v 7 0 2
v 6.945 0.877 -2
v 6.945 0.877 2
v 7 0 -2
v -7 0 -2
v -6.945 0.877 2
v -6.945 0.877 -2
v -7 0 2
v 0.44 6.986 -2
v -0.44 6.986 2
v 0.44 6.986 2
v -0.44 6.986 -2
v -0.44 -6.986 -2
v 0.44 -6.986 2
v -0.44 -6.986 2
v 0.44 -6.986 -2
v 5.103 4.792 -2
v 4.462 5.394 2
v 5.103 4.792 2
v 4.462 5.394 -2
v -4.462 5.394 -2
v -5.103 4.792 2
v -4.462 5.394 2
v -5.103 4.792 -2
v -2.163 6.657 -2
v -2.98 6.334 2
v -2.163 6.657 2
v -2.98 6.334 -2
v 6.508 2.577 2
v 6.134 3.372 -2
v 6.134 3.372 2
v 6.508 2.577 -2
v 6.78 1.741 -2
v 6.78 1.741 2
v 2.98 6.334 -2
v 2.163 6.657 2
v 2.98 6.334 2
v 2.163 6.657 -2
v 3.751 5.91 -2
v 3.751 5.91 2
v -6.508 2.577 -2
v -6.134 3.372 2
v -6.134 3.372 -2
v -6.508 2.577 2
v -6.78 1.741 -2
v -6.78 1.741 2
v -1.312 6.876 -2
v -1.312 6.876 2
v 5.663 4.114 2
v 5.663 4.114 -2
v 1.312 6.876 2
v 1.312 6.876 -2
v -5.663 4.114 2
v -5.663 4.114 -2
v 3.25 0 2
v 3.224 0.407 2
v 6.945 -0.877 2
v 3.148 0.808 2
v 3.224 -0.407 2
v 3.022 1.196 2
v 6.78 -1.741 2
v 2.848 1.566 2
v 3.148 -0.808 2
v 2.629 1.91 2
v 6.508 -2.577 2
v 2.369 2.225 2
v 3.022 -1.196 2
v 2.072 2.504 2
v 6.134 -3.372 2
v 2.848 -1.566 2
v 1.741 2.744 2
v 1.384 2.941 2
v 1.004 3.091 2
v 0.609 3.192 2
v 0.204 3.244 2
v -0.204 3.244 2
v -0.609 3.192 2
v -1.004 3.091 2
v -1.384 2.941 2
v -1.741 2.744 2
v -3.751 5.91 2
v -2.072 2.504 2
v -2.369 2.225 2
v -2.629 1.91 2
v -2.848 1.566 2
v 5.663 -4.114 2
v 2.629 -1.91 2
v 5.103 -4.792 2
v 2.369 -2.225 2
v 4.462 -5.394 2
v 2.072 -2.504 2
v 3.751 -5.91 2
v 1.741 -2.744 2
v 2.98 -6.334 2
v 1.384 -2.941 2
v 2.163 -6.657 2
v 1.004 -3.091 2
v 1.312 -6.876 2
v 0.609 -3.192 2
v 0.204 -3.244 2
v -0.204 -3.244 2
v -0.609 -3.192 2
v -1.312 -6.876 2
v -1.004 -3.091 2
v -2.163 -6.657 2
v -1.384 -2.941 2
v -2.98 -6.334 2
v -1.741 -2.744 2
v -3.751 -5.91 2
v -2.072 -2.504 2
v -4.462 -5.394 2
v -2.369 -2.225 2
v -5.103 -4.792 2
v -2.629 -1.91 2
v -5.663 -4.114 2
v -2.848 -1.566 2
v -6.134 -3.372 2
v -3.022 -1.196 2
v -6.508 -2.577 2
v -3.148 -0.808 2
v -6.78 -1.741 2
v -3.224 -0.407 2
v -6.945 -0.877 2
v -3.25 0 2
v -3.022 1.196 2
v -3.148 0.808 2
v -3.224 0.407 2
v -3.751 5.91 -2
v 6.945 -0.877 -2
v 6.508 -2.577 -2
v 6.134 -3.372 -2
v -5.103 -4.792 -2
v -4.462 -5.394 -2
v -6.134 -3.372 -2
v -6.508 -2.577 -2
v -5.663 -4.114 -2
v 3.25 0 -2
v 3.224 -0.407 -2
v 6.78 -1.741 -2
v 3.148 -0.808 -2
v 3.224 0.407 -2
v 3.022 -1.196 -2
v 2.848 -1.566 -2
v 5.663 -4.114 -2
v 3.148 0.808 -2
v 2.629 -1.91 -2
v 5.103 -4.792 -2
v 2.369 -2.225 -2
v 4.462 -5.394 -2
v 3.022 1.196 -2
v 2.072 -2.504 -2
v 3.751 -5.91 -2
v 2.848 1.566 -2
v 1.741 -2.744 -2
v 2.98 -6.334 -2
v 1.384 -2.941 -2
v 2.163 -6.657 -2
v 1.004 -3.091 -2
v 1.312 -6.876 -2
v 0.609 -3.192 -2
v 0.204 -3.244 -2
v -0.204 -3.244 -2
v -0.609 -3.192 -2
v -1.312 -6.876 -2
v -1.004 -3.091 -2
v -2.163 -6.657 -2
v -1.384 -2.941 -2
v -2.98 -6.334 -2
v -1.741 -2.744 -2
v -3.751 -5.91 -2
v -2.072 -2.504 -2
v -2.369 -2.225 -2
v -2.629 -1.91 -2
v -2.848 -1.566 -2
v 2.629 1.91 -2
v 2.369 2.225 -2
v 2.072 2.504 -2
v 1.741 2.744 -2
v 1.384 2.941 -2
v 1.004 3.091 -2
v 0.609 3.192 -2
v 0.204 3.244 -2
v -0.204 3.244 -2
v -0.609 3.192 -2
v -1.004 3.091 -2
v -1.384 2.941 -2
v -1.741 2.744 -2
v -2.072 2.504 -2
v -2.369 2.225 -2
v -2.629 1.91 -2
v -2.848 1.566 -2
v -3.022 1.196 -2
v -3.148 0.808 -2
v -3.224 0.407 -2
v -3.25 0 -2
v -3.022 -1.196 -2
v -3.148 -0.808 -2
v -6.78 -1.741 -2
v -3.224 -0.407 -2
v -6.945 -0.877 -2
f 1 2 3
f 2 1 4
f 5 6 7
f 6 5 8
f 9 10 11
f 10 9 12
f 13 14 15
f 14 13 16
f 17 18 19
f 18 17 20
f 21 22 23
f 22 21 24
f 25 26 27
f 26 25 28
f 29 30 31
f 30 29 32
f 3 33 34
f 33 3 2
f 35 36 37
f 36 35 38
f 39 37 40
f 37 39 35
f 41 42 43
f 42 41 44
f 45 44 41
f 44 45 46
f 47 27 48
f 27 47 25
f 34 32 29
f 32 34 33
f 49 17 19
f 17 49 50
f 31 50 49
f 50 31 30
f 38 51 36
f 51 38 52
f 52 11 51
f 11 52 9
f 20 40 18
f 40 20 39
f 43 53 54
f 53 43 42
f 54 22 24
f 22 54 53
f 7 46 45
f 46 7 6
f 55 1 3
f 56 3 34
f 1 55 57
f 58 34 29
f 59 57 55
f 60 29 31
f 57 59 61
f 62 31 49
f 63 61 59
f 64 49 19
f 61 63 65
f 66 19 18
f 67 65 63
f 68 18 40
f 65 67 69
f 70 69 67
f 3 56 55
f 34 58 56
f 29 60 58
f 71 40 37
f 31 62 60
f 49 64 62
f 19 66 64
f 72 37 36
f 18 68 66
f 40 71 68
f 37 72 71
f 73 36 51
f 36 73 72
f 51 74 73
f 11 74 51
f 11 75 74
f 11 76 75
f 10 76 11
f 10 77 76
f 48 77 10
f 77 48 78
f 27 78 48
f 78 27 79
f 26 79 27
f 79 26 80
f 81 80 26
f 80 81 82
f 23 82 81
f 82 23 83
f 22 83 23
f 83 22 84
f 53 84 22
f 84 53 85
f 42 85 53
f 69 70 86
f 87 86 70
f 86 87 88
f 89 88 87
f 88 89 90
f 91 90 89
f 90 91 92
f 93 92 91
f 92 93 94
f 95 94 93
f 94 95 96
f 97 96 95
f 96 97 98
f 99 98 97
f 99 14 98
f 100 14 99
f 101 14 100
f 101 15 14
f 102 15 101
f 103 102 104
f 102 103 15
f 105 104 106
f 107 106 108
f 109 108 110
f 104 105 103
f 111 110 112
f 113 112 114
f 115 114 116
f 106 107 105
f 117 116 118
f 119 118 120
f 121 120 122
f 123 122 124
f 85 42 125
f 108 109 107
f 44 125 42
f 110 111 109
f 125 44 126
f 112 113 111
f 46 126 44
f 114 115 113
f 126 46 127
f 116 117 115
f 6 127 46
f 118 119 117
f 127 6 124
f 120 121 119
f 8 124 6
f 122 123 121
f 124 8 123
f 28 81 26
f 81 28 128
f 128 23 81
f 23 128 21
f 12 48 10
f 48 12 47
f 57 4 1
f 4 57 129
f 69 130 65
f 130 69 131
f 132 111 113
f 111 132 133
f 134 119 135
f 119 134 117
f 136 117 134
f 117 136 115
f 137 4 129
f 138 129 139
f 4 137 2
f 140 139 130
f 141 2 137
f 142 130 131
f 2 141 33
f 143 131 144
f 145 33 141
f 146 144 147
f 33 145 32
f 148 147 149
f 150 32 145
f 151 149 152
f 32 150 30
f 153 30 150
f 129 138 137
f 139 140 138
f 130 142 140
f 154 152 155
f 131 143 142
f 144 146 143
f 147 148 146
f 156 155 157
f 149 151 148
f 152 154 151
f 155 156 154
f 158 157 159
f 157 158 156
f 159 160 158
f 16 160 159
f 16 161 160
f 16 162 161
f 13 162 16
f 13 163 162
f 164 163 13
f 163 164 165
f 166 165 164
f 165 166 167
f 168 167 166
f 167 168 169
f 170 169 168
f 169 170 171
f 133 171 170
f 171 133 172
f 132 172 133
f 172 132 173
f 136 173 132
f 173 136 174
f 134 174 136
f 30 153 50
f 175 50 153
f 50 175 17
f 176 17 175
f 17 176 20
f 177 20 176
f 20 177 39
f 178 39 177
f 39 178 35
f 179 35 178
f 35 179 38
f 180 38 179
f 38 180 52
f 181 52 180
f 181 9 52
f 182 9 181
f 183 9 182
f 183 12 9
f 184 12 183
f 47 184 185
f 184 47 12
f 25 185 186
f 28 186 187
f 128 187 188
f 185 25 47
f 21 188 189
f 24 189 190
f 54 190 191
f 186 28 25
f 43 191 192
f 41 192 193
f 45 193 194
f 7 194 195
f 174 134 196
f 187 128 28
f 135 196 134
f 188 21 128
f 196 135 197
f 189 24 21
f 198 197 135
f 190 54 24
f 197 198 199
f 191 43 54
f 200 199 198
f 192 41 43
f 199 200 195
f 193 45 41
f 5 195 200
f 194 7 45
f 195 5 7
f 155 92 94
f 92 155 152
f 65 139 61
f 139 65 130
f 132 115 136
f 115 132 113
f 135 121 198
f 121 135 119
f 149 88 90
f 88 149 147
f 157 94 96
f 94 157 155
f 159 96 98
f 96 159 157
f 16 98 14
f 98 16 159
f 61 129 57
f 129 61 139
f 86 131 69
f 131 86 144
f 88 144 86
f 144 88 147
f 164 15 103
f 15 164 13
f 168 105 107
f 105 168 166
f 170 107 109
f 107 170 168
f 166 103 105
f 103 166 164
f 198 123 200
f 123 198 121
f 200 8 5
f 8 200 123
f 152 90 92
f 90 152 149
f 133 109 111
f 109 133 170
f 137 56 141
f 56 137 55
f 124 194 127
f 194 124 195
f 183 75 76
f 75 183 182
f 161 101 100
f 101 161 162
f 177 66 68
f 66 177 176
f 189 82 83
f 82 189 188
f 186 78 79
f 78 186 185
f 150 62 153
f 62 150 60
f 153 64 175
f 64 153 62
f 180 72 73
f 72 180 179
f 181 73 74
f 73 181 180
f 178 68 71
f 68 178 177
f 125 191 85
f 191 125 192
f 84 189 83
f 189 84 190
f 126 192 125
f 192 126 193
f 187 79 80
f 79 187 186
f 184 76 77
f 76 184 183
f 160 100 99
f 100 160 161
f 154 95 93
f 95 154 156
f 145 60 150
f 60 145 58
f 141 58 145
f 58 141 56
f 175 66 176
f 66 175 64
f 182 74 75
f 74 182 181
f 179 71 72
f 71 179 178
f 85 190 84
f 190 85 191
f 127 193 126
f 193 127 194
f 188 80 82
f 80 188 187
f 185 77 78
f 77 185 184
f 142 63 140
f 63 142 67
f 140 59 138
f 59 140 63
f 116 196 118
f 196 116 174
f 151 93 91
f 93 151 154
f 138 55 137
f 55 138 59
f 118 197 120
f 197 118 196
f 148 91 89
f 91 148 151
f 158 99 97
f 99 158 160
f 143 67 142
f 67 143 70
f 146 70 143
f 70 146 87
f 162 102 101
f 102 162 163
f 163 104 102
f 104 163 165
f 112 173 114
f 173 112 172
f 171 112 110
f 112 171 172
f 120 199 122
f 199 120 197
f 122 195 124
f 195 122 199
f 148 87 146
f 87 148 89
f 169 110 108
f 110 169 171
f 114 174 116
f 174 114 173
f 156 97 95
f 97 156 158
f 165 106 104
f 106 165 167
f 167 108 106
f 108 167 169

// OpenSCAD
$fn = 50;


difference() {
	union() {
		translate(v = [0, 0, -2.0000000000]) {
			cylinder(h = 4, r = 7.0000000000);
		}
	}
	union() {
		translate(v = [0, 0, -100.0000000000]) {
			cylinder(h = 200, r = 3.2500000000);
		}
	}
}
